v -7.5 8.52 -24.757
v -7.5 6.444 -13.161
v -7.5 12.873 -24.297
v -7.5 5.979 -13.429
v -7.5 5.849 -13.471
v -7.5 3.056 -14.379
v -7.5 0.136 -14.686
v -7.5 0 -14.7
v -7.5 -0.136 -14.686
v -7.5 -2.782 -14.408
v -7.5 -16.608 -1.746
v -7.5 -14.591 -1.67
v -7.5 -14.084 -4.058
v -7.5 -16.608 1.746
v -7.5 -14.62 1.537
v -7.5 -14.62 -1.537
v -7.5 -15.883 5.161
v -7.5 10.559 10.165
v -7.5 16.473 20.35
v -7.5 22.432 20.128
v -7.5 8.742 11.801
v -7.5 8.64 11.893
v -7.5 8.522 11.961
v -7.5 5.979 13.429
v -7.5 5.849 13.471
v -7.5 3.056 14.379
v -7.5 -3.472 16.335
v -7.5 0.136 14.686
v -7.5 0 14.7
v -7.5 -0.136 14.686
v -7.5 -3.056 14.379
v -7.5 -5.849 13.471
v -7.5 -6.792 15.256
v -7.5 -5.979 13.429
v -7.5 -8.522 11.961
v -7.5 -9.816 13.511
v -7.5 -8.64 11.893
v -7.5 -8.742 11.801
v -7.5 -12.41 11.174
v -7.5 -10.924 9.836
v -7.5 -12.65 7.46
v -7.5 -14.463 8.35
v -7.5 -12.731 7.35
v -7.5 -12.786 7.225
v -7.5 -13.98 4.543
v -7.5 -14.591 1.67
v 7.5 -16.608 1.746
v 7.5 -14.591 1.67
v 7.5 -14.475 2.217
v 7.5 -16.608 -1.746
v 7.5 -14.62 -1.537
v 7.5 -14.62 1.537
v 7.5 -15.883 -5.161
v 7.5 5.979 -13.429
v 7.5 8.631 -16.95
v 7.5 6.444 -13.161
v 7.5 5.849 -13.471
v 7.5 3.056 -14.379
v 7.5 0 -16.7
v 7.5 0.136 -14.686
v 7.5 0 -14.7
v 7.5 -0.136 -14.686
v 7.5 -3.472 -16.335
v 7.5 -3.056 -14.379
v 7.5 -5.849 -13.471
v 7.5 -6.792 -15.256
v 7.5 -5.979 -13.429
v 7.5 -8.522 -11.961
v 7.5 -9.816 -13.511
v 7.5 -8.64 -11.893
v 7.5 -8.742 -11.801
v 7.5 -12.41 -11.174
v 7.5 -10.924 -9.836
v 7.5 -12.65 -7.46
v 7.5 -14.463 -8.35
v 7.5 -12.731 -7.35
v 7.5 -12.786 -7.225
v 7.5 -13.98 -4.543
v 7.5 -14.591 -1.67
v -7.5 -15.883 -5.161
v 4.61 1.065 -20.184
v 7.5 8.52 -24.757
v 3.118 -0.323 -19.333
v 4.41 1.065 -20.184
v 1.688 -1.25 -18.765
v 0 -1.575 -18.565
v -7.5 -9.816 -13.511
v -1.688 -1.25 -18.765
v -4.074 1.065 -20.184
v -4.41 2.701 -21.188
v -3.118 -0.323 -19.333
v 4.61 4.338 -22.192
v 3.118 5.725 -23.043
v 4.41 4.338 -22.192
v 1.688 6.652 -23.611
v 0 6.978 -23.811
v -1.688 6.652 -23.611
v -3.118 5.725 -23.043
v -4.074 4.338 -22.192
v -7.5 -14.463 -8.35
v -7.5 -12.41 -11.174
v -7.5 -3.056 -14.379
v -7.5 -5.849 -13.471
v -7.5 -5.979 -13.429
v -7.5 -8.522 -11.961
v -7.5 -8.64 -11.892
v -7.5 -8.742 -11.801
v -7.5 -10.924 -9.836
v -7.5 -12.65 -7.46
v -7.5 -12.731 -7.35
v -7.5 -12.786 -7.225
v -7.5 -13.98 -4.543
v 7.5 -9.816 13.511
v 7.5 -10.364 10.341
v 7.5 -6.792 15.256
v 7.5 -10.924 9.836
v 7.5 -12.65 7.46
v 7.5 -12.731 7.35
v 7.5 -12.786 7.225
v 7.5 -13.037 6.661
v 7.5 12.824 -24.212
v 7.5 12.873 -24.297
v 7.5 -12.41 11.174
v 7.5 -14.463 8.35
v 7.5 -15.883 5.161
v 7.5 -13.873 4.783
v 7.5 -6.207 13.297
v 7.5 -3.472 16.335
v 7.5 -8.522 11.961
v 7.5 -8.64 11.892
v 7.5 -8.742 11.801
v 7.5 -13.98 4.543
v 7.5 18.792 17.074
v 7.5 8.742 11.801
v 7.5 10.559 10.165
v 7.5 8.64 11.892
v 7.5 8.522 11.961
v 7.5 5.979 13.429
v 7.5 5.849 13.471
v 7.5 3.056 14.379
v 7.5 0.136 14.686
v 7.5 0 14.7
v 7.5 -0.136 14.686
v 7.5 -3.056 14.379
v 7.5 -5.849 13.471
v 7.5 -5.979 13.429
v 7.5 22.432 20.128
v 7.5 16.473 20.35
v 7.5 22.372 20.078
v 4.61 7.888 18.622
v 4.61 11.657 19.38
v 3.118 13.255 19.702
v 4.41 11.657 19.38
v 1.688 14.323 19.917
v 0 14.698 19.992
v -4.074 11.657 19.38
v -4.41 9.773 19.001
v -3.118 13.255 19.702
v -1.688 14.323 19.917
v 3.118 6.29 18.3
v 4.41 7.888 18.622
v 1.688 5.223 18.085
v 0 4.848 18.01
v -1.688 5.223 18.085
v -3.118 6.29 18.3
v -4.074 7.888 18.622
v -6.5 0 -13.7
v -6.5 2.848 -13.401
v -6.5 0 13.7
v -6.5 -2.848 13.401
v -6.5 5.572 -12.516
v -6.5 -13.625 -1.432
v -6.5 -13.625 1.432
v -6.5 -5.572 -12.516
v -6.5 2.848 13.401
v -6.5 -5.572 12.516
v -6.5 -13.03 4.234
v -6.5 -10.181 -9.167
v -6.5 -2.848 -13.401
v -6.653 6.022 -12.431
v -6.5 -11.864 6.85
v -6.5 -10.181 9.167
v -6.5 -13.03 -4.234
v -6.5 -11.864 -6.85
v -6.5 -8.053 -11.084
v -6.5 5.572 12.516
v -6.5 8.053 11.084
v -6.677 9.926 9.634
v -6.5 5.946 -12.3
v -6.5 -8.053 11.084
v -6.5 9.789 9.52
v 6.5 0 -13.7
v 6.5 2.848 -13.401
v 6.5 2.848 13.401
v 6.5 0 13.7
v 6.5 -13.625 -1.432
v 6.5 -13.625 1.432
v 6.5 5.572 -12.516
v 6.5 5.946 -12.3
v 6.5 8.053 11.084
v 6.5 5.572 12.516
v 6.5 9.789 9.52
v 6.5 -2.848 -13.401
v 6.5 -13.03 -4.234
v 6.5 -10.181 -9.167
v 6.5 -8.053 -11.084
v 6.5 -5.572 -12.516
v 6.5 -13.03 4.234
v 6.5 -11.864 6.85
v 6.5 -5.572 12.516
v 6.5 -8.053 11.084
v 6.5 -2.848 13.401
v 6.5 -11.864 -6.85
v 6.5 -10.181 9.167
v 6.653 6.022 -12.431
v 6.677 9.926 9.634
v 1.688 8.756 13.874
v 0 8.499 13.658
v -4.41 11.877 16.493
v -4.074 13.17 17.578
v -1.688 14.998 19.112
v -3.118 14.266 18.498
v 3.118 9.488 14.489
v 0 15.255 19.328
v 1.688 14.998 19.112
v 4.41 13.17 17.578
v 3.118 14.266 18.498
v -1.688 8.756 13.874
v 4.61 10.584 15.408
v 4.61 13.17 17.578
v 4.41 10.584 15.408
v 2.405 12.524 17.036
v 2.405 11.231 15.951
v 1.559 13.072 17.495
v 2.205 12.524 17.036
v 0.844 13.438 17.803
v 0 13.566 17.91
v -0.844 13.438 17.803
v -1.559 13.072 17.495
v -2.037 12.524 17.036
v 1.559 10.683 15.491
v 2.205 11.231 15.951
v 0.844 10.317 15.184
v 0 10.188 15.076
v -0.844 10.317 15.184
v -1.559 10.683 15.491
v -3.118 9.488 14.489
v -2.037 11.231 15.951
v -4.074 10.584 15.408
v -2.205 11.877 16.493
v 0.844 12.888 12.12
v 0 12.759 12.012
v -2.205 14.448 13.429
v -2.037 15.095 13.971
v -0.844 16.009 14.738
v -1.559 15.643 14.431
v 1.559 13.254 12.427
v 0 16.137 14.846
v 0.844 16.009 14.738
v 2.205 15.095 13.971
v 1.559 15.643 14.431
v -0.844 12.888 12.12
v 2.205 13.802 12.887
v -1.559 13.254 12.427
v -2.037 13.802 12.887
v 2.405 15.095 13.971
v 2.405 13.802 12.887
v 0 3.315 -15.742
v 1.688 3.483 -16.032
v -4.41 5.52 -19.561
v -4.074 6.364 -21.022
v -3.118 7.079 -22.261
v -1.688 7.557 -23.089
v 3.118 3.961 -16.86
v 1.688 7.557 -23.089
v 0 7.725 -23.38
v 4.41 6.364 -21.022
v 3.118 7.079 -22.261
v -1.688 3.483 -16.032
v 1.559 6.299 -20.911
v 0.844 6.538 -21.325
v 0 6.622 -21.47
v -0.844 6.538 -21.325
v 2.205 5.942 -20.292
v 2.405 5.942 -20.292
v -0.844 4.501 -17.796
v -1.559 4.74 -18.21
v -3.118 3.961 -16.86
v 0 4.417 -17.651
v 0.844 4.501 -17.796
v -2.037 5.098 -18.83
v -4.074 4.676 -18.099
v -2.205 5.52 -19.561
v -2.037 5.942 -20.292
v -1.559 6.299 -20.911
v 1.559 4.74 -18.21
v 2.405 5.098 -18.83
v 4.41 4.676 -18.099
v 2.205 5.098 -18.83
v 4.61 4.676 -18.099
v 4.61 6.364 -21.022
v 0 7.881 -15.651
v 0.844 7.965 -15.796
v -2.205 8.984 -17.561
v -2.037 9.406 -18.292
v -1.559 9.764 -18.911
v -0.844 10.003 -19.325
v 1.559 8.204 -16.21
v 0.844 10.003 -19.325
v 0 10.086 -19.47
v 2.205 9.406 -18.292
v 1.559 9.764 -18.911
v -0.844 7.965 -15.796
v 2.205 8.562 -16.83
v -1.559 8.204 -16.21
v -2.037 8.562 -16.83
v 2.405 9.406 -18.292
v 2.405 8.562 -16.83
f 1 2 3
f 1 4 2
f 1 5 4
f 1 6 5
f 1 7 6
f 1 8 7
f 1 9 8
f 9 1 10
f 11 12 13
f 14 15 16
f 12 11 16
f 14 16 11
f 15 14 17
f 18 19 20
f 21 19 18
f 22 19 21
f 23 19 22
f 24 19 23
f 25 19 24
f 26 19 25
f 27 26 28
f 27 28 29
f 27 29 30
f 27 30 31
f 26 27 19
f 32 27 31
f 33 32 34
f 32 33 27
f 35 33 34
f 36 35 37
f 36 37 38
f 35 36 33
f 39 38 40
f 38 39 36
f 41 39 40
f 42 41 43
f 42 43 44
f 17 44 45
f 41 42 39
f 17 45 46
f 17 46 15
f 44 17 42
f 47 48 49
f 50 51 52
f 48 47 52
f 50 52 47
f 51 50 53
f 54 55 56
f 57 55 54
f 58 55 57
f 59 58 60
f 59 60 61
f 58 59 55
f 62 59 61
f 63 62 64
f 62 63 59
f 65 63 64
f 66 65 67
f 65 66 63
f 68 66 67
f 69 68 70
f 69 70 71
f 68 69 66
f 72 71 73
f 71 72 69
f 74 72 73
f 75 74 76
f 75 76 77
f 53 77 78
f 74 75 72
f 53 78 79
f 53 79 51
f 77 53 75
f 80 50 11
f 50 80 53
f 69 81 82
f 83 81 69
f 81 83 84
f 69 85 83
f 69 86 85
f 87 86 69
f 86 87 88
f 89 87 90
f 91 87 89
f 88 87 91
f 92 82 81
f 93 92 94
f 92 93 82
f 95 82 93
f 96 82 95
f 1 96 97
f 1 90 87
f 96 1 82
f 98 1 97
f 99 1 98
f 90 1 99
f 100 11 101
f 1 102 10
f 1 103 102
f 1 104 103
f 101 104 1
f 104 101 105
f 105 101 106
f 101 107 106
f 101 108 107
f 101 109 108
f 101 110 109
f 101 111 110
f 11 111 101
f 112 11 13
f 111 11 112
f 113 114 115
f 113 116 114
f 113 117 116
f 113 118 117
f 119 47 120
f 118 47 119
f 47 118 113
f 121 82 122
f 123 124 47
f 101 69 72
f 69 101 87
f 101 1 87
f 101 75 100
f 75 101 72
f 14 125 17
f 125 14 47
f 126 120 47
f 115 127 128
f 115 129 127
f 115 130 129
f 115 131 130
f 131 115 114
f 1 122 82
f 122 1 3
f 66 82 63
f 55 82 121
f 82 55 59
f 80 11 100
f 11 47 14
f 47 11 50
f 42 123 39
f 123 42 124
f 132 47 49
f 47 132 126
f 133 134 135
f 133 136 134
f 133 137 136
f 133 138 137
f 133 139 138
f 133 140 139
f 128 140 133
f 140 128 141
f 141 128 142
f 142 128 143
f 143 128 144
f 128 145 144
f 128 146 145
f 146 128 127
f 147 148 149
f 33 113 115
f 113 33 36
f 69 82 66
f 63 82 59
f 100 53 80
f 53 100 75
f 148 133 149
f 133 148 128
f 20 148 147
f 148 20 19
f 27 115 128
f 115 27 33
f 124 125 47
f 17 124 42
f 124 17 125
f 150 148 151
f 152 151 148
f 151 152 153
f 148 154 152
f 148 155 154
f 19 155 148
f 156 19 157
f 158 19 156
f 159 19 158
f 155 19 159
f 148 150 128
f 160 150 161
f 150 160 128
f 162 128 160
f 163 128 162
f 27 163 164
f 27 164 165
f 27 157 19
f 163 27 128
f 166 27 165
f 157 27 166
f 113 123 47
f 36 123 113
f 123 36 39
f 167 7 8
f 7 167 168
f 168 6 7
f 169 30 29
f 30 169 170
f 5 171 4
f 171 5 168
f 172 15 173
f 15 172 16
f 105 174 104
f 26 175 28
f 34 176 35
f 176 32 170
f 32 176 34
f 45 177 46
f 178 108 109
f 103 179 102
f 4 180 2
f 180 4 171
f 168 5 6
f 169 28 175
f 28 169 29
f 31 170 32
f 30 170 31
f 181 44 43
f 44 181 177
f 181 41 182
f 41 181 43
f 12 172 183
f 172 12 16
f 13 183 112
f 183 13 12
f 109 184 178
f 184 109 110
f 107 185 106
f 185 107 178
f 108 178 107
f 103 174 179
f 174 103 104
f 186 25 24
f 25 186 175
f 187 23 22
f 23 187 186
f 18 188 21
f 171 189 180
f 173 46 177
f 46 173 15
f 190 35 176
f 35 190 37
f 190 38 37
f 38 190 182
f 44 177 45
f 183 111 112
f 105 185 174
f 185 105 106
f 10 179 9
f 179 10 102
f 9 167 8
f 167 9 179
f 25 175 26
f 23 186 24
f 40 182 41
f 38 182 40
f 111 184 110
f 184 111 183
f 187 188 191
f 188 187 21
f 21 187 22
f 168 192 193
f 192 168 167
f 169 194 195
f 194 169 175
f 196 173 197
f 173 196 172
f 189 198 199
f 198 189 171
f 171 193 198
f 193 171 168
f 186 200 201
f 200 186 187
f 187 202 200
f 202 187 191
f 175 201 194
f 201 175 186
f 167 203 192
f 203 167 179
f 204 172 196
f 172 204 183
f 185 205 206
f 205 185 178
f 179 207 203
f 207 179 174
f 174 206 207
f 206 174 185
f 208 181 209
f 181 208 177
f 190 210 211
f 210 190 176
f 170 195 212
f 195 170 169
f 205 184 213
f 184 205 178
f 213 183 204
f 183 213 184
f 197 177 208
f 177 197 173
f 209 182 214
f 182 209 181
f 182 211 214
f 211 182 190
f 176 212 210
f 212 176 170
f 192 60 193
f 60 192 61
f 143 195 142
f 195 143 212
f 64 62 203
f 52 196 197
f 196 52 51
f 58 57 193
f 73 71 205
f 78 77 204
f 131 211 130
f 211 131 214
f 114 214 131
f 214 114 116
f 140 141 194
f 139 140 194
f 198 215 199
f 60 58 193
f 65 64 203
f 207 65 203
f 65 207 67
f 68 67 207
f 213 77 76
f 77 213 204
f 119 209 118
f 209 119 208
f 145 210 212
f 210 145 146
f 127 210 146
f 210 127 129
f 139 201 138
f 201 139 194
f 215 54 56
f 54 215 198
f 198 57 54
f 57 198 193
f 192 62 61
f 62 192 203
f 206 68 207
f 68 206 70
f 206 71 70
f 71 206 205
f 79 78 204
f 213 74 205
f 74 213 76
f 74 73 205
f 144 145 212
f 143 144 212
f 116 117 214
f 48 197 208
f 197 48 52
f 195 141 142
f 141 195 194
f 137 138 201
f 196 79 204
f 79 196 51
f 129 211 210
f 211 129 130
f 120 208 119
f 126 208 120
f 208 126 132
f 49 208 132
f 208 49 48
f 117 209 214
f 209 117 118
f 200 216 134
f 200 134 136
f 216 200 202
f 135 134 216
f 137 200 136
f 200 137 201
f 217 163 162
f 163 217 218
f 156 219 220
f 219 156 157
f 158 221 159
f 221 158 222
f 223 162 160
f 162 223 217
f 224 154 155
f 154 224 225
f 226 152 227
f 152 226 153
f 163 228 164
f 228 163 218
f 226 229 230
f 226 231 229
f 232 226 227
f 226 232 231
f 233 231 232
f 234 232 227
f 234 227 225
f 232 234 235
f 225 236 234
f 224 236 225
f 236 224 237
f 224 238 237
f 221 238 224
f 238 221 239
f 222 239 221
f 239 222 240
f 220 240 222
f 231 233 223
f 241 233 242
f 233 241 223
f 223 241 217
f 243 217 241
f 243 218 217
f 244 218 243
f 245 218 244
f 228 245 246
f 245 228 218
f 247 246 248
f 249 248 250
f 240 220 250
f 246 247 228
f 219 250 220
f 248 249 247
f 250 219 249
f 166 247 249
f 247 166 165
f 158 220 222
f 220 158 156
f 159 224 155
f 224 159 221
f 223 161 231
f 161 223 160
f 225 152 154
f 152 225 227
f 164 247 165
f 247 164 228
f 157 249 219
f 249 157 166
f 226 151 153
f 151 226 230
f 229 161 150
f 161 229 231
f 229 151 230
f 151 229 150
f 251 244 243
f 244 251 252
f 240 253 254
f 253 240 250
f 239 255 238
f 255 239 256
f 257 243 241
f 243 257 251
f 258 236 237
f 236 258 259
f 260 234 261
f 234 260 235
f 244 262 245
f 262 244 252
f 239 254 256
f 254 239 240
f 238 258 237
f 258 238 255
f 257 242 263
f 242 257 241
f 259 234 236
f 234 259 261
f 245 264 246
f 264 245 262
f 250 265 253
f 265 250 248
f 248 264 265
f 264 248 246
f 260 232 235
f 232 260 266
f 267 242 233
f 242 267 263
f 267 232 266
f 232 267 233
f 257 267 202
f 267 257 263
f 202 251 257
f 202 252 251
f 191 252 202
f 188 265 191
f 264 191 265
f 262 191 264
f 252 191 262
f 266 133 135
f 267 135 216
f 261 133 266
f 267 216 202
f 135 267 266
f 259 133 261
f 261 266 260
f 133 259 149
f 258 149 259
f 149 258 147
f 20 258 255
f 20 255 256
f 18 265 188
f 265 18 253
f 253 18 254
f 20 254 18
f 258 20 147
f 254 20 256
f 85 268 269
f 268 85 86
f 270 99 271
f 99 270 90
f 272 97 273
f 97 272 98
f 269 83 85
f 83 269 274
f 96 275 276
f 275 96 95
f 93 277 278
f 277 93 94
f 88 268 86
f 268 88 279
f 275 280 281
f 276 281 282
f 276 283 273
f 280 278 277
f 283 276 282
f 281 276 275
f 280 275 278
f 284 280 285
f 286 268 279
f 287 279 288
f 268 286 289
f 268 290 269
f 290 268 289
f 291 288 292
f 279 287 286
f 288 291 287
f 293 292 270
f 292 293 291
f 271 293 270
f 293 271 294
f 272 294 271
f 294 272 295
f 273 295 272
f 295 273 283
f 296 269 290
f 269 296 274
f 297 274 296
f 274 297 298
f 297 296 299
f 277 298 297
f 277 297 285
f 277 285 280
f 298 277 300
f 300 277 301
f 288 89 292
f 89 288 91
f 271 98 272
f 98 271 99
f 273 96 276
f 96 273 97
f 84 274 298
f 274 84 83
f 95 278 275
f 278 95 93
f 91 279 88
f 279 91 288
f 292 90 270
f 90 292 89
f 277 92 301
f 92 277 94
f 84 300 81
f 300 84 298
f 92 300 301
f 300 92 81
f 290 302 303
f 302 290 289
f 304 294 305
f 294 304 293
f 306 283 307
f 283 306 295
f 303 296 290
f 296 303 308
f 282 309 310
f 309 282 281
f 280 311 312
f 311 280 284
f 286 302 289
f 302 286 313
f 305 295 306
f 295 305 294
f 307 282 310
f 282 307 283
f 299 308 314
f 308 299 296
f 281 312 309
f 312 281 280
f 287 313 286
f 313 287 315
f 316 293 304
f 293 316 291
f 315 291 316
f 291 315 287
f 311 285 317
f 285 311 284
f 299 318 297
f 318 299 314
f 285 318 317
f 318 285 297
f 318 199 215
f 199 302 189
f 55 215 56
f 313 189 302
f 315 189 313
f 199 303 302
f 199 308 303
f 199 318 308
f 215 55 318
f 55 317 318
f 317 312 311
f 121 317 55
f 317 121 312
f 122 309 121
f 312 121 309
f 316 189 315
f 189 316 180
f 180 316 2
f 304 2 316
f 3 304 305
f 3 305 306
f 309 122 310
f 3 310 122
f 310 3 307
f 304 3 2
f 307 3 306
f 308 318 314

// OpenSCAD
// file: ../standard_optomechanics/cylinder_clamp.scad
use <../utilities.scad>;
d=0.05;

//for 1 inch/25mm post clamp, an inner radius of 12.8 is good.
	
module cylinder_clamp(
	inner_r=12.8, //radius of the cylinder being clamped (ish!)
	clamp_h=11, //thicknedess of the clamp along the cylinder axis
	clamp_t=4, //thickness of the clamp radially
	flat_t=8, //how thick the bottom of the clamp is (often need to allow for the mounting bolt head here)
	flat_width=15, //width of the flat base
	mounting_bolt=4, //nominal size of mounting bolt (default is 4 for M4, 0 to disable)
	nut_trap=false,
	bevel_top=0.5, //size of 45 degree bevel on top surface
	bevel_bottom=0.8 //size of 45 degree bevel on bottom of hole
	){
	assign(
		post_r = inner_r, //poor initial choice of name!
		bolt_flat_w=10, //width of the region where the bolt is
		gap_w=3 //size of the gap that is squeezed by the bolt
	)
	difference(){
		hull(){
			cylinder(h=clamp_h,r=post_r+clamp_t,center=true,$fn=48);
			translate([0,-post_r-flat_t/2,0]) cube([flat_width,flat_t,clamp_h],center=true);
			translate([0,post_r+bolt_flat_w/2,0]) cube([12,bolt_flat_w,clamp_h],center=true);
		}
	
		cylinder(h=9999,r=post_r,center=true,$fn=48); //cylinder being clamped
		//bevels, top and bottom
		translate([0,0,-clamp_h/2]) cylinder(r1=post_r+3*bevel_bottom,r2=post_r-bevel_bottom,h=4*bevel_bottom,center=true);
		translate([0,0,clamp_h/2]) cylinder(r2=post_r+3*bevel_top,r1=post_r-bevel_top,h=4*bevel_top,center=true);
		//gap (squeezed by bolt)
		translate([0,999,0]) cube([gap_w,999*2,999],center=true); //gap
	
		//clamping bolt
		translate([gap_w/2+2,post_r+bolt_flat_w/2,0]) rotate([0,0,-90]) nut_y(4,h=999,shaft=true);
		translate([-gap_w/2-2,post_r+bolt_flat_w/2,0]) rotate([0,0,90]) cylinder_with_45deg_top(r=4,h=999,$fn=16); //counterbore for nut head
	
		if(mounting_bolt > 0){
			//mounting bolt
			translate([0,-post_r-4.5,0]) rotate([-90,0,0]){
				intersection(){
					rotate([90,0,0])
						if(nut_trap){
							nut_y(mounting_bolt,fudge=1.15,shaft=true,h=999);
						}else{
							screw_y(mounting_bolt,fudge=1.07,shaft=true,h=999);
						}
					cube([inner_r*2,inner_r*2,clamp_h*2],center=true);
				}
			}
		}
		//in the case of thick clamps with thin flats, this keeps the bottom flat
		translate([0,-inner_r-flat_t-999,0]) cube([9999,999*2,9999],center=true);
	}
}

module cylinder_clamp_v(
	inner_r=12.8, //radius of the cylinder being clamped (ish!)
	clamp_h=10, //width of the clamp along the cylinder (y) axis
	clamp_t=4, //thickness of the clamp radially
	flat_t=8, //how thick the bottom of the clamp is (often need to allow for the mounting bolt head here)
	flat_width=15, //width of the flat base
	mounting_bolt=4, //nominal size of mounting bolt (default is 4 for M4, 0 to disable)
	bevel=0.5 //put a 45 degree bevel on the edges of the hole
	){
	assign(
		post_r = inner_r, //poor initial choice of name!
		bolt_flat_w=11, //width of the region where the bolt is
		gap_w=2*inner_r*sin(45/2),//sin(acos(1-(9/2-4/2*1.22)/inner_r))*inner_r //size of the gap that is squeezed by the bolt
		bolt_z = inner_r+4/2*1.22+d //position of bolt (so bolt just clears the cylinder we're clamping
	)assign( //the second assign statement allows us to use gap_w
		bolt_span=gap_w+4+d//max(2*inner_r*sin(acos(1-(9/2-4/2*1.22)/inner_r)), gap_w+4)
	)
	difference(){
		hull(){
			rotate([90,0,0]) cylinder(h=clamp_h,r=inner_r+clamp_t,center=true,$fn=48);
			translate([0,0,-inner_r-flat_t/2]) cube([flat_width,clamp_h,flat_t],center=true);
			translate([0,0,bolt_z]) cube([gap_w+9,clamp_h,bolt_flat_w],center=true);
		}
	
		cylinder_with_45deg_top(h=9999,r=post_r,center=true,$fn=48); //cylinder being clamped
		reflect([0,1,0]) translate([0,clamp_h/2,0]) rotate([90,0,0]) cylinder(r1=post_r+3*bevel,r2=post_r-bevel,h=4*bevel,center=true); //bevel
		translate([0,0,999]) cube([gap_w,999,999*2],center=true); //gap
	
		//clamping bolt
		translate([bolt_span/2,0,bolt_z]) rotate([0,0,-90]) nut_y(4,h=999,shaft=true);
		translate([-bolt_span/2,0,bolt_z]) rotate([0,0,90]) cylinder_with_45deg_top(r=4,h=999,$fn=16); //counterbore for nut head
	
		if(mounting_bolt > 0){
			//mounting bolt
			translate([0,0,-post_r-4.5]){
				cylinder(r=mounting_bolt*1.1,h=post_r,$fn=16);
				cylinder(r=mounting_bolt/2*1.22,h=flat_t*2,center=true,$fn=16);
			}
		}
		translate([0,0,-inner_r-flat_t-999]) cube([9999,9999,999*2],center=true);
	}
}

translate([0,30,0]) cylinder_clamp_v(30.5/2, 10, flat_width=24, mounting_bolt=4, flat_t=8);

cylinder_clamp(30.5/2, flat_width=24, mounting_bolt=4, flat_t=8,nut_trap=true);
// main file
use <../utilities.scad>;
use <../standard_optomechanics/cylinder_clamp.scad>;

bar_to_bag = 65;
bar_r = 26/2+0.7;
bag_y = bar_r + bar_to_bag;
pocket = [85,10,36.8];
clip=[15,pocket[1],pocket[2]];
lip = [clip[0], 4.5, 4];
screw_angles = [140, -10];

d=0.05;

module rh_clamp(){
    difference(){
        union(){
            hull(){
                rotate([0,90,0]) cylinder(h=clip[0], r=bar_r+3, center=true);
                translate([0,bar_to_bag+bar_r-1.5*pocket[1]+d,0]) cube(clip,center=true);
                rotate([screw_angles[1],0,0]) reflect([0,0,1]) rotate([0,90,0]) rotate(screw_angles[0]) translate([bar_r+6,0,0]) cube([12,10,clip[0]],center=true);
            }
            translate([0,bar_to_bag+bar_r,0]){
                translate([0,-clip[1]/2,0]) cube(clip,center=true);
                translate([-lip[0]/2,-lip[1],clip[2]/2-d]) cube(lip);
            }
        }
        
        //hole for handlebar
        rotate([0,90,0]) chamfered_hole(h=clip[0], r=bar_r,center=true);
        
        //fixing bolts
        rotate([screw_angles[1],0,0]) reflect([0,0,1]) rotate([0,90,0]) rotate(screw_angles[0]) translate([bar_r+6,0,0]){
            pinch_y(4,screw_l=8,gap=[30,2,20],extra_height=0.2,t=4);
            mirror([0,1,0]) translate([-4,3,0]) cube([8,4,999]);
        }
        
        //chamfer the edge
        assign(r=2){
            translate([clip[0]/2 - r, bag_y-pocket[1], clip[2]/2 - r]){
                difference(){ //radius the top corner of the pocket
                    cube([999,999,999]);
                    rotate([90,0,0]) cylinder(r=r,h=999*3,center=true);
                }
                for(a=[0, 5, 10, 15]) rotate([a,0,0]) translate([0,0,-pocket[2]+2*r - a/180*3.14*r/2]) mirror([0,0,1]) difference(){ //radius the bottom corner of the pocket & allow for swing
                    translate([-clip[0],0,0]) cube([999,999,999]);
                    rotate([90,0,0]) cylinder(r=r,h=999*3,center=true);
                    translate([-clip[0],-999,0]) cube([clip[0],999*2,r]);
                }
                
            }
        }
        
        //bolts to connect central clip
        reflect([0,0,1]) translate([0,bar_to_bag+bar_r-clip[1]-5, clip[2]/2-7]) rotate([0,90,0]){
            cylinder(r=4*1.1,h=999);
            cylinder(r=4/2*1.1,h=999,center=true);
        }
        //bolts to connect central reinforcement
        translate([0,bar_r + 15, 0]) repeat([0,bar_to_bag - 12*3 - clip[1],0],2) rotate([0,90,0]){
            cylinder(r=4*1.1,h=999);
            cylinder(r=4/2*1.1,h=999,center=true);
        }
        
        //brake cable clearance
        translate([0,bar_r+10,-bar_r-3]) hull() repeat([0,5,-10],2) rotate([0,90,0]) cylinder(h=999,r=3,center=true);
    }
}

module linker(){
    difference(){
        cube([pocket[0]-2*clip[0], 10, clip[2]],center=true);
        
        //tapped holes for mounting (M4)
        reflect([1,0,0]) reflect([0,0,1]) translate([pocket[0]/2-clip[0], 0,clip[2]/2-7]) rotate([0,90,0]) cylinder(r=3.5/2,h=30,center=true,$fn=16);
        
        //hole for actuating rod
        translate([0,5,0]) cube([30,8,999],center=true);
       
        //attachment for actuating rod 
//        translate([0,-5,-clip[2]/2]) cube([26+0.5,0.5,20*2+1],center=true); //pocket for the mount
        reflect([1,0,0]) translate([9,-2,-clip[2]/2+4]) rotate([-90,0,0]) nut(3,h=999,shaft=true);
    }
}
module reinforcement(){
    difference(){
        translate([-pocket[0]/2+clip[0],bar_r+10,-5]) cube([pocket[0]-2*clip[0], bar_to_bag - 12*3 - clip[1] + 10, 10]);
        
        //tapped holes for mounting (M4)
        reflect([1,0,0]) translate([pocket[0]/2-clip[0],bar_r + 15, 0]) repeat([0,bar_to_bag - 12*3 - clip[1],0],2) rotate([0,90,0]){
            cylinder(r=4/2*0.95,h=30,center=true);
        }
        
        //cable tie/anchor point
        reflect([1,0,0]) translate([15,bar_r+18,0]) cube([5,5,999],center=true);
   
    }
}

module clip(){
    w=26;
    t=3;
    reach=15;
    snib=[w,4,4];
    snib_z=-6;
    roc=(8-snib_z)/2;
    lever=30;
    difference(){
        union(){
            translate([-w/2,0,snib_z]) mirror([0,1,0]){
                translate([0,0,-snib_z]) cube([w,t,25]); //mount to clamp
                
                //clamp arm (flexes)
                translate([0,0,roc*2]) cube([w,lever-reach+d,t]);
                translate([0,lever-reach,roc]) rotate([0,90,0]) difference(){
                    cylinder(r=roc+t,h=w,$fn=32);
                    cylinder(r=roc,h=999,center=true,$fn=32);
                    translate([0,-999,0]) cube([1,1,1]*999*2,center=true);
                }
                translate([0,-reach-d,-t]) cube([w,lever+2*d,t]);
            }
            //snib
            translate([-w/2,reach,snib_z-t])hull(){
                cube([w,snib[1]+t,d]);
                cube([w,d,snib[2]+t]);
            }
            //actuator
            translate([-w/2,10-t, snib_z-t/2]) rotate([3,0,0]){
                cube([w,t,clip[2]-snib_z+10]);
                translate([0,-10+t,clip[2]-snib_z+10-t]) cube([w,10,t]);
            }
        }
        
        //mounting bolts
        reflect([1,0,0]) translate([9,-999+1,4]) rotate([-90,0,0]) cylinder(r=3*1.15/2,h=999,$fn=16);
    }
}

//reflect([1,0,0]) translate([-clip[2]/2-10-20,0,0]) 
//rotate([0,-90,0]) 
difference(){
    rh_clamp();
    
    hull(){
                //fixing bolts
        rotate([screw_angles[1],0,0]) reflect([0,0,1]) rotate([0,90,0]) rotate(screw_angles[0]) translate([0,0,-99]){
            cube([999,d,999]);
        }
    }
}

//rotate([90,0,0]) linker();
//reinforcement();
//rotate([0,-90,0]) clip();

//reflect([1,0,0]) translate([pocket[0]/2-clip[0]/2,0,0]) rh_clamp(); //in situ
//translate([0,bar_to_bag+bar_r-clip[1]-5,0]) linker();
//translate([0,bar_to_bag+bar_r-clip[1]-10,-clip[2]/2]) clip();

/*rotate([0,-90,0]) intersection(){
    rh_clamp();
    translate([999/2,bag_y,0]) cube([999,24,999],center=true);
}*/
